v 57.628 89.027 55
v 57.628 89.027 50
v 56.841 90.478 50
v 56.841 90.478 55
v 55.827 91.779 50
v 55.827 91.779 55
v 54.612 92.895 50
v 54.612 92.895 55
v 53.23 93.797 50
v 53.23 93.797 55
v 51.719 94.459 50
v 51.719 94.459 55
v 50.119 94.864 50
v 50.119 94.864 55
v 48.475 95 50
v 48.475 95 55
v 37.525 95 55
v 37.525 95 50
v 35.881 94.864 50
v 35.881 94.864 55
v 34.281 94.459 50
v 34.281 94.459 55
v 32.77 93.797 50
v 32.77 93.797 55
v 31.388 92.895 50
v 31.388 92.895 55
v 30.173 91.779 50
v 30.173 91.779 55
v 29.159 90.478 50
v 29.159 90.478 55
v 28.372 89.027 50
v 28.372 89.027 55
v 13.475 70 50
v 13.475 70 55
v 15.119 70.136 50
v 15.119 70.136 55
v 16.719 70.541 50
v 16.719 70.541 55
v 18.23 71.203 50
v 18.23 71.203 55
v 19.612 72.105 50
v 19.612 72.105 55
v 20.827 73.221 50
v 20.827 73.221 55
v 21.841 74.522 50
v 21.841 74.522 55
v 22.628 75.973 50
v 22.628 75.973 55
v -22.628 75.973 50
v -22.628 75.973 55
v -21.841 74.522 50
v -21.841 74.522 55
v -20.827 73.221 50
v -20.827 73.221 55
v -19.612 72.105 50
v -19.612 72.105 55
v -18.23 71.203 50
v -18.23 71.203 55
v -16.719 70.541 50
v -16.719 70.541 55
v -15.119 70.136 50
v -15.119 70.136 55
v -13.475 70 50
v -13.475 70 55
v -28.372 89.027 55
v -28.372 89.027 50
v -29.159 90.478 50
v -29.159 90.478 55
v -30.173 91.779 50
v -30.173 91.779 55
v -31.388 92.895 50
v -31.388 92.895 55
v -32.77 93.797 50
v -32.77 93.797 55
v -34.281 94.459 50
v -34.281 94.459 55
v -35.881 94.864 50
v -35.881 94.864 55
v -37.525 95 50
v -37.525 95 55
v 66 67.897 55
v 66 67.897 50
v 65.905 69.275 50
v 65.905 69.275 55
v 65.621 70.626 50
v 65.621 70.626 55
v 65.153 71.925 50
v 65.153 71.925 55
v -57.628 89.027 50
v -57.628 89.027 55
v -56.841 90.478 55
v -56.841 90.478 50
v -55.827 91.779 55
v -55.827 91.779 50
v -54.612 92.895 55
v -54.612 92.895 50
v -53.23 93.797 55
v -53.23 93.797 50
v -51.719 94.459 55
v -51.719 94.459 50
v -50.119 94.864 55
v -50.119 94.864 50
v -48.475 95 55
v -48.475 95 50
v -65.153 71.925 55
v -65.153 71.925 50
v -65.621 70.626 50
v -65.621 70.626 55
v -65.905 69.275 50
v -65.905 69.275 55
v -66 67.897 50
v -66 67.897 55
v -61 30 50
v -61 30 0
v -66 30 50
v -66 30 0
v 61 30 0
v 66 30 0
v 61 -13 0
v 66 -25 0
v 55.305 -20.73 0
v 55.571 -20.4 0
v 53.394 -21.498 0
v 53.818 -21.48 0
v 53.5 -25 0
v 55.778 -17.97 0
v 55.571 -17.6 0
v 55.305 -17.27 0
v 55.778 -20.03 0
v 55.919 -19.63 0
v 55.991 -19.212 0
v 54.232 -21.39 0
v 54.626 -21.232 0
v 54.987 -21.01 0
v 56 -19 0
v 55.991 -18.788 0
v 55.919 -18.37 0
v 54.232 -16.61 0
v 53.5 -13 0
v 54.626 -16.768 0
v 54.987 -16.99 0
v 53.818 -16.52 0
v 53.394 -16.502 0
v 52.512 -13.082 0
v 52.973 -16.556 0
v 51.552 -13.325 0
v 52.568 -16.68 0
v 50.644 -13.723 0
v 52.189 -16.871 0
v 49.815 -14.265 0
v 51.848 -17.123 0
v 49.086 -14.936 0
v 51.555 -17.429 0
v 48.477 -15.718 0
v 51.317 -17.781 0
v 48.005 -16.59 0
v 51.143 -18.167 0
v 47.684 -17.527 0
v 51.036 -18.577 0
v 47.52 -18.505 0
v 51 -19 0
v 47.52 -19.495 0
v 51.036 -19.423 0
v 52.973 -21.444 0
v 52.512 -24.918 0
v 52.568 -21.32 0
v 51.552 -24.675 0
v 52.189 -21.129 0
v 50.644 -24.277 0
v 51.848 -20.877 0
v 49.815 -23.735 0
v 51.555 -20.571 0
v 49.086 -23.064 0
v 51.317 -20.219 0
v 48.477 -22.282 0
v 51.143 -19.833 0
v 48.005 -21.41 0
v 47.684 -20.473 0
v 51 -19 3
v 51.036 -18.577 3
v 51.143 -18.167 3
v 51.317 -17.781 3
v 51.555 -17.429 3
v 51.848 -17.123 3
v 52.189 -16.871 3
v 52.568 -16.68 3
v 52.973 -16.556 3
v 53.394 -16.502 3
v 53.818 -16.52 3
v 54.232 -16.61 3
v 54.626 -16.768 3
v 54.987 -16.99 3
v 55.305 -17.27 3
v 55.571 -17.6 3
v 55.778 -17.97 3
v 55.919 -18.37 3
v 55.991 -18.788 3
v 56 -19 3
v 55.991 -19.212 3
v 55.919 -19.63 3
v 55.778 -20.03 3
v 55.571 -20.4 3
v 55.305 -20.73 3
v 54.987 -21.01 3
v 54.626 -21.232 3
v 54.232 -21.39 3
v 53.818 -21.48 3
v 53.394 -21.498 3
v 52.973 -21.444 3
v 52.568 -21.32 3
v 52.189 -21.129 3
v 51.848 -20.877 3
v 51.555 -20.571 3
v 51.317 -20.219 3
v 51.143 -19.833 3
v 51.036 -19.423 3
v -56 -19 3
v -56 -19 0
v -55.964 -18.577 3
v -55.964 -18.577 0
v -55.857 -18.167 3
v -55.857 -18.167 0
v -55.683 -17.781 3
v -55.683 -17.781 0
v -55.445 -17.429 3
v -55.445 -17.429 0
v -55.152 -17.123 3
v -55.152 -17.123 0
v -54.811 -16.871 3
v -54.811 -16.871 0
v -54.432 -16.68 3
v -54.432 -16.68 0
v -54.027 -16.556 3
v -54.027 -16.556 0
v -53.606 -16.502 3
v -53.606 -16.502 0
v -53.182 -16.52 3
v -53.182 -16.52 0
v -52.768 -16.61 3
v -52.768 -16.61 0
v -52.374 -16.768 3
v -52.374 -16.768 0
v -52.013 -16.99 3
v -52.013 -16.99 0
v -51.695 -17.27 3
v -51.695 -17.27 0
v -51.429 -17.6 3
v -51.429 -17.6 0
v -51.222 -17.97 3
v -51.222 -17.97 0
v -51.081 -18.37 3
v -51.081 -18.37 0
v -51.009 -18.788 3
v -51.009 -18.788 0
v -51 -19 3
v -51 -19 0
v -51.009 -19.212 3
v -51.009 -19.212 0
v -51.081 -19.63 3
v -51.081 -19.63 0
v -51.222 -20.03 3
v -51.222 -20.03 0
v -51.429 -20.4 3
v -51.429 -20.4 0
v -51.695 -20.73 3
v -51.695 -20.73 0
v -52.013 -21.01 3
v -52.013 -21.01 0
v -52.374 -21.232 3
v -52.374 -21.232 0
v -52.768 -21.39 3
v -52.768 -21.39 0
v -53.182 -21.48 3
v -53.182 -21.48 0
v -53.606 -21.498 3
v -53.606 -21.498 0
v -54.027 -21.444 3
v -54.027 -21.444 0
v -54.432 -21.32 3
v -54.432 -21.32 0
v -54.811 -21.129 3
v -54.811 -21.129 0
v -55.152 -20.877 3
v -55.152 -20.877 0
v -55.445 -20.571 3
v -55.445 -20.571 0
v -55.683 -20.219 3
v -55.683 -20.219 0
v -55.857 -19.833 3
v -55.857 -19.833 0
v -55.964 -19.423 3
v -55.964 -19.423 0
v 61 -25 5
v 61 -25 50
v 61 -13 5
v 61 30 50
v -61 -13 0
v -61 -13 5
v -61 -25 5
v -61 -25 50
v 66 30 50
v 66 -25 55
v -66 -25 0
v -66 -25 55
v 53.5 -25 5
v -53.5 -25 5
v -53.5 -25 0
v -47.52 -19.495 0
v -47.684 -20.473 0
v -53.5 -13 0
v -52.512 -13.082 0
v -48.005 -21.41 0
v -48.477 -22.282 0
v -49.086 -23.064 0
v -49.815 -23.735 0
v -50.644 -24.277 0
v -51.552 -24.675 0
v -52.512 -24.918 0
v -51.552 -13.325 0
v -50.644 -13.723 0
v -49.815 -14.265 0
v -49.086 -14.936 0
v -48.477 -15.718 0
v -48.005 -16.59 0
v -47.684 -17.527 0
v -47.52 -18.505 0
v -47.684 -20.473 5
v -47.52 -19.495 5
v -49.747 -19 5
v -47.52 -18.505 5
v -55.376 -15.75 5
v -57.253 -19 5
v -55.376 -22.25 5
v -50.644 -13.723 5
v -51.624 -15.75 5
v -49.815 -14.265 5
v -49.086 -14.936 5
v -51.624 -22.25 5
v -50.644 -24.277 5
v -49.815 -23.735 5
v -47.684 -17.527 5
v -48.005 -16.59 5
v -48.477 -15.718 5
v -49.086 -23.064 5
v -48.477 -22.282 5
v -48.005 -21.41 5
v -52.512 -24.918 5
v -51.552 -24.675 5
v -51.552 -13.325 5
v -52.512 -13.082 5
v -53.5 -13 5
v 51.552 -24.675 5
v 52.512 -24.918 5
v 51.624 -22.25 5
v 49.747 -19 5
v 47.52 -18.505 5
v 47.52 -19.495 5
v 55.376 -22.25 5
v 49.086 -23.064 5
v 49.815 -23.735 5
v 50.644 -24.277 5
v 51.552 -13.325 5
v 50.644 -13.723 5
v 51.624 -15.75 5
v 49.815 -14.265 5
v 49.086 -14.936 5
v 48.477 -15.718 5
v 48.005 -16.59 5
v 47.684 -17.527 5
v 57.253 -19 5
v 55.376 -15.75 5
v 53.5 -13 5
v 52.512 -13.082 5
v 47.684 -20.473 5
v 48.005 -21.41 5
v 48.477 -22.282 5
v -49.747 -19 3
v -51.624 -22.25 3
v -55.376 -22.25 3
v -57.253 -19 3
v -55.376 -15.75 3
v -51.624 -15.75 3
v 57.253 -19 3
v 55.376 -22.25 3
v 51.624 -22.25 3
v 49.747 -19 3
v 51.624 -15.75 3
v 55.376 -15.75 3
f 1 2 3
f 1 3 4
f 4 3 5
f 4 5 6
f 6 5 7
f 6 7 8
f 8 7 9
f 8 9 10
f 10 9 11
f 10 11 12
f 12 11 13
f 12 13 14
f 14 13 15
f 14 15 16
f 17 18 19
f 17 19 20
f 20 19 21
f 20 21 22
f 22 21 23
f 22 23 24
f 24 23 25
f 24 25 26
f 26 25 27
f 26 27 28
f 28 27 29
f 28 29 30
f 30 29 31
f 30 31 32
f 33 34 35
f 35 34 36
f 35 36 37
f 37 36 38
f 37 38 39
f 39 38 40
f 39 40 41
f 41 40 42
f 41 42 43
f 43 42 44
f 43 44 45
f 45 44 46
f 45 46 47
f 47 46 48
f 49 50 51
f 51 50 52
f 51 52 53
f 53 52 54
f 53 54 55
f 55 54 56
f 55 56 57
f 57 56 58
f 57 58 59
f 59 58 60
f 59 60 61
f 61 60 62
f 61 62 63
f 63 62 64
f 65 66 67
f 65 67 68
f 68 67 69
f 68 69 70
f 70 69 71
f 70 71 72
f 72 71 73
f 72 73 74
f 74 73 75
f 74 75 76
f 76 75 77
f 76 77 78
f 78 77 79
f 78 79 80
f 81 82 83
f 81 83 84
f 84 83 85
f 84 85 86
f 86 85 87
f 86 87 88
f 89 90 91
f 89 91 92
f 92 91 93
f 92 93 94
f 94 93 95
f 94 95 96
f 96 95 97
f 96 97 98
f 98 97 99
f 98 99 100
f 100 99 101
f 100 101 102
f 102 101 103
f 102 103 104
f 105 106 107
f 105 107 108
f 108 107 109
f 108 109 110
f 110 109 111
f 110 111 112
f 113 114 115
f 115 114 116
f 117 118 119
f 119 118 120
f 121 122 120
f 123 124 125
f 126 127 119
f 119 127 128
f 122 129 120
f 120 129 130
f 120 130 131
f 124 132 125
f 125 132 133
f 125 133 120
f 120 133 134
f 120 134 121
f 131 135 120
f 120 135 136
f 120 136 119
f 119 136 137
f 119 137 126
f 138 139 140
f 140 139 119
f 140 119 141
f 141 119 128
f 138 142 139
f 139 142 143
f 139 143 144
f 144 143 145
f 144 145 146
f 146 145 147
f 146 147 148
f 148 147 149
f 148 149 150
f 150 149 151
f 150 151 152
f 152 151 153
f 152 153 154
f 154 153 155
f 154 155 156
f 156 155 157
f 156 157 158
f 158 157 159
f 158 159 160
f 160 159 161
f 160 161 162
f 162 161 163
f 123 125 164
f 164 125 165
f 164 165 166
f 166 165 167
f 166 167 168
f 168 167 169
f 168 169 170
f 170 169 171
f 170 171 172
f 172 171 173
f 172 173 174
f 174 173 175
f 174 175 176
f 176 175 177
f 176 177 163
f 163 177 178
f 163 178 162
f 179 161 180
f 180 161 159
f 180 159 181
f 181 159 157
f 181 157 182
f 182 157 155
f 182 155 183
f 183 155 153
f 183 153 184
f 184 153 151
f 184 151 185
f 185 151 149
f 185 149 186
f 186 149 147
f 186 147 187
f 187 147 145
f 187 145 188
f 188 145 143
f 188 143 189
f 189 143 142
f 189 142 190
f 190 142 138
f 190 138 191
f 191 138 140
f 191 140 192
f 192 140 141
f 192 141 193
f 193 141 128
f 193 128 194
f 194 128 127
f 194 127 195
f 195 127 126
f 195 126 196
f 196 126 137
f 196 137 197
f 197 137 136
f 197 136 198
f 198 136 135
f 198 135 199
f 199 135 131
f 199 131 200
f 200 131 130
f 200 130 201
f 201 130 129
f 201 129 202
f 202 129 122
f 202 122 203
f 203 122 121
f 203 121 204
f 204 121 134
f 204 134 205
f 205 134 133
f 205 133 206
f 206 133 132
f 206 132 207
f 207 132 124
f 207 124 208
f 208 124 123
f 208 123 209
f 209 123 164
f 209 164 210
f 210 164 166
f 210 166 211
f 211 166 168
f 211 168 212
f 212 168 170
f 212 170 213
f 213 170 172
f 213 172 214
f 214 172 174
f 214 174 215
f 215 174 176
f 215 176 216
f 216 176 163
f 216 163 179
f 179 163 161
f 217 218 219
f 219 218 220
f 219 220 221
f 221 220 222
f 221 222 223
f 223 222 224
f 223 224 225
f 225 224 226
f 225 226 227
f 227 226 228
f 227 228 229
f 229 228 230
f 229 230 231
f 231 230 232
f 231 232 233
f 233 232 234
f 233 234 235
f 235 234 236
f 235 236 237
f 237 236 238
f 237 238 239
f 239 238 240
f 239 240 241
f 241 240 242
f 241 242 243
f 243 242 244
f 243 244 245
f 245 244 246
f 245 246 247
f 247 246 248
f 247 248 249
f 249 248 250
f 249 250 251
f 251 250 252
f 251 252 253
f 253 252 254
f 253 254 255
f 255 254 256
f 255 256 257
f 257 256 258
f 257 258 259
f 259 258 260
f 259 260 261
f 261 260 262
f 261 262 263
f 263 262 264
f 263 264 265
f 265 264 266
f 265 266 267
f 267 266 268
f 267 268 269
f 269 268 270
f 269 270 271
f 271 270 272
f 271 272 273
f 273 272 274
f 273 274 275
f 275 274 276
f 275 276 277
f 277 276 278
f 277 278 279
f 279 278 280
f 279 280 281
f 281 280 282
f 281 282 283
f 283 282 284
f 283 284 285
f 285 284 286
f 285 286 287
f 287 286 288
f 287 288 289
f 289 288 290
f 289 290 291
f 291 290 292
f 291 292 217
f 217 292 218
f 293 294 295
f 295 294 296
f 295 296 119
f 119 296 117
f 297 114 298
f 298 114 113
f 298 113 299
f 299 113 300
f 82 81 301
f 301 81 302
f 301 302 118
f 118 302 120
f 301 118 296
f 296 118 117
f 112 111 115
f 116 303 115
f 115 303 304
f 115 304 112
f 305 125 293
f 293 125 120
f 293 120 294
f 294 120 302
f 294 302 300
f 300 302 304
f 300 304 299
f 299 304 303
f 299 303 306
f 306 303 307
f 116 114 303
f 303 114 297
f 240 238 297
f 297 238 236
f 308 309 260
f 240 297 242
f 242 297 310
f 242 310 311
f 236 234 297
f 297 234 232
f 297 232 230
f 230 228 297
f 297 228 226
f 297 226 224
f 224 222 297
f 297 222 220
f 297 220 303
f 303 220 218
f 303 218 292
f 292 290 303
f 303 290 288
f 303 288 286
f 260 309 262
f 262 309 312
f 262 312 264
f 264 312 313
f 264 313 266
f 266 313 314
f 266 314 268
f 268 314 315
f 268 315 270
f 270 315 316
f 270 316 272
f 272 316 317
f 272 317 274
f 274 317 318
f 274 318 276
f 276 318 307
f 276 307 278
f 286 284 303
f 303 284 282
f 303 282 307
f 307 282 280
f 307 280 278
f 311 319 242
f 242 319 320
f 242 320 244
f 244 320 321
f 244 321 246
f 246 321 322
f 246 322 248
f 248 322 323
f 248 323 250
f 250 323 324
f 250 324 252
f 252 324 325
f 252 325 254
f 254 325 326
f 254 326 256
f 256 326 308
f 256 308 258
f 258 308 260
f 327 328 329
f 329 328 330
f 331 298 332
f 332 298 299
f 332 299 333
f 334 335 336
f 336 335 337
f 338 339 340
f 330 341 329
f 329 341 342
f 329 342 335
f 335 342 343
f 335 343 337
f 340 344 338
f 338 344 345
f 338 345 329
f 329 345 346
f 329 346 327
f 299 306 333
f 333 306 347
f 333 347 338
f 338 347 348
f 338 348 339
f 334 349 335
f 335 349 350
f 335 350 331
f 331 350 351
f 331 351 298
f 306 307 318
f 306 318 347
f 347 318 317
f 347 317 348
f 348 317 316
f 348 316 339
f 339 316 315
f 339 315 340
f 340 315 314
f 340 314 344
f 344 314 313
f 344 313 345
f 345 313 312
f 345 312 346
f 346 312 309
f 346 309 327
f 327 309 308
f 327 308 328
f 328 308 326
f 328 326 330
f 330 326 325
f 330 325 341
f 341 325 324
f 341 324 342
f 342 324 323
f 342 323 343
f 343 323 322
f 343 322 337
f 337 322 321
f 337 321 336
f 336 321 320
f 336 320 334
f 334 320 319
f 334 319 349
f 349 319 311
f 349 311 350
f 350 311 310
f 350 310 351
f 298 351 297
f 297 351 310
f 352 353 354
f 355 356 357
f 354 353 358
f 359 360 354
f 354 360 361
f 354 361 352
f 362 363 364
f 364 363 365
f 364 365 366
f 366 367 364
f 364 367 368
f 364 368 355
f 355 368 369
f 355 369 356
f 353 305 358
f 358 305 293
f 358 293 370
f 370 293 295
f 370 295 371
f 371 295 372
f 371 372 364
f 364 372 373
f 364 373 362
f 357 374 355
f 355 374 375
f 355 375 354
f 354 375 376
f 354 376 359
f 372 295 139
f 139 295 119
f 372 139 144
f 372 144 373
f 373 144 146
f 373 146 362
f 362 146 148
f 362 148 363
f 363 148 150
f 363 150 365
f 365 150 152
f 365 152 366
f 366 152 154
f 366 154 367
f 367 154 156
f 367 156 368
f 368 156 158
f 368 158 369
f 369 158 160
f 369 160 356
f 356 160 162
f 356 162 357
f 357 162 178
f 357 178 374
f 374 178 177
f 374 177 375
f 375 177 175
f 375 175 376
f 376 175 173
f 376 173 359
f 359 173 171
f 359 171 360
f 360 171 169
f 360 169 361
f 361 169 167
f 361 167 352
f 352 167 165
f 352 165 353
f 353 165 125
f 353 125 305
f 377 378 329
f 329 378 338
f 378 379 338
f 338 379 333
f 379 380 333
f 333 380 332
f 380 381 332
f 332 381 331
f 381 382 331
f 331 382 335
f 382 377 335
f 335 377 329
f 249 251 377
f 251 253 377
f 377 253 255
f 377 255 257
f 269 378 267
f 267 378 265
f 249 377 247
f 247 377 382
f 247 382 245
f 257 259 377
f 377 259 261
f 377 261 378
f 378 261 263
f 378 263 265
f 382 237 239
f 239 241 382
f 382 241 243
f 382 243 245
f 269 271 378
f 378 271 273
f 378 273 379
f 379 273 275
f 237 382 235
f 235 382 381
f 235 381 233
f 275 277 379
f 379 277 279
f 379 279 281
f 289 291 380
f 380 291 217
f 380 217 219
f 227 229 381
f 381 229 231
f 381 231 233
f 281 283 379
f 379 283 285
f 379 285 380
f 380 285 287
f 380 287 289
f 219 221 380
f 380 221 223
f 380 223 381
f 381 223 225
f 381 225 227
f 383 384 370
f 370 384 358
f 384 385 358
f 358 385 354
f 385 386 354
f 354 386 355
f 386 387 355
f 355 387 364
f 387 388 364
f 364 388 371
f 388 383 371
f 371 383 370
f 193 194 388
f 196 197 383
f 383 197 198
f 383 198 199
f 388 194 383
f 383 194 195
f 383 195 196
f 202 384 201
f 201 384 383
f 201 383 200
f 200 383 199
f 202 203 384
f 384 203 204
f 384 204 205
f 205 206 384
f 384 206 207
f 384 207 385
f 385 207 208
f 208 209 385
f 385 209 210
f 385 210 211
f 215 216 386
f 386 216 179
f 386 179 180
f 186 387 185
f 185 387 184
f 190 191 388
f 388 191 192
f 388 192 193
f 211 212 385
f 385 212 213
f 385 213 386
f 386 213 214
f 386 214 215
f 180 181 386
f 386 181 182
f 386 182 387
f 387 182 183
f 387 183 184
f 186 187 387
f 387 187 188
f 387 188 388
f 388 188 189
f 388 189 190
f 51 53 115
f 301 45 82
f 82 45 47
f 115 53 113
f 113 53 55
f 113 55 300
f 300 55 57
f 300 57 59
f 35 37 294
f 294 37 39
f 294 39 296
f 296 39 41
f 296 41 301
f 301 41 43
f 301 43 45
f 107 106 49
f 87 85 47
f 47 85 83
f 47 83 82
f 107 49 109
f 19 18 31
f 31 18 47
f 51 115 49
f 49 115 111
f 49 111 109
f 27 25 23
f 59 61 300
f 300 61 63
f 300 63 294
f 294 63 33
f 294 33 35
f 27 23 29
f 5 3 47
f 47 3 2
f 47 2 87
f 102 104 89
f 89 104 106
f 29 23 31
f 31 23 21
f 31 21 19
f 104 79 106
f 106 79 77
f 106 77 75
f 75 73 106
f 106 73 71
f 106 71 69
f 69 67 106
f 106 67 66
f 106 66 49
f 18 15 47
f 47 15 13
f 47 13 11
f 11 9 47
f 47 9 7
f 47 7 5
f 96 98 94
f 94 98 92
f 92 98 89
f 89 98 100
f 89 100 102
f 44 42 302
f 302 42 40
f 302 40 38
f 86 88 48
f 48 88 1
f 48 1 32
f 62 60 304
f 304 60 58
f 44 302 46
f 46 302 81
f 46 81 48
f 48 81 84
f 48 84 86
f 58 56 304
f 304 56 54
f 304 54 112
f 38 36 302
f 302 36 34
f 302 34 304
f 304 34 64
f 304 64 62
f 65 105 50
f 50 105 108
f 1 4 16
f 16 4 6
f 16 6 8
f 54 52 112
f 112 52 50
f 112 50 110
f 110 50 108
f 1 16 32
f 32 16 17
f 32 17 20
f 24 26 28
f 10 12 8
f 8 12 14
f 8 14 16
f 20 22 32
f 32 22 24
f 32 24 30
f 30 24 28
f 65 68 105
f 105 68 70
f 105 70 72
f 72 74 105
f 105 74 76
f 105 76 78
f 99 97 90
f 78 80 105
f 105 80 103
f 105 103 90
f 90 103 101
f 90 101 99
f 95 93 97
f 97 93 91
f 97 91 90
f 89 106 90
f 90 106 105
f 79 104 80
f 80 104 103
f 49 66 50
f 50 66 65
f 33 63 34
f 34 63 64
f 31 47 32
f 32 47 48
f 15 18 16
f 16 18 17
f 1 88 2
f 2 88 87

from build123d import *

# Parameters (mm, degrees)
EXTRUDE_1_DEPTH     = 50
SKETCH_2_R          = 2.5
EXTRUDE_2_DEPTH     = 5
CUT_EXTRUDE_2_DEPTH = 2
SKETCH_7_W          = 132
SKETCH_7_H          = 55
EXTRUDE_3_DEPTH     = 5
SKETCH_8_W          = 122
SKETCH_8_H          = 5
CUT_EXTRUDE_3_DEPTH = 50
EXTRUDE_4_DEPTH     = 5
FILLET_1_R          = 10
FILLET_2_R          = 10
FILLET_3_R          = 10
FILLET_4_R          = 10
FILLET_5_R          = 10
FILLET_6_R          = 10
FILLET_7_R          = 10
FILLET_8_R          = 10


with BuildPart() as part:
    # 草图1 → 凸台-拉伸1 (new body)
    with BuildSketch(Plane.XY):
        Polygon((-66, 30), (66, 30), (66, -25), (61, -25), (61, 25), (-61, 25), (-61, -25), (-66, -25), align=None)
    extrude(amount=EXTRUDE_1_DEPTH)

    # 草图2 → 凸台-拉伸2 (add)
    # profile 1 of 2: a face of its own
    with BuildSketch(Plane.XY):
        with BuildLine():
            Line((-61, -13), (-53.5, -13))
            ThreePointArc((-53.5, -13), (-47.5, -19), (-53.5, -25))
            Line((-53.5, -25), (-61, -25))
            Line((-61, -25), (-61, -13))
        make_face()
        with Locations((-53.5, -19)):
            Circle(SKETCH_2_R, mode=Mode.SUBTRACT)
    # profile 2 of 2: a face of its own
    with BuildSketch(Plane.XY):
        with BuildLine():
            Line((61, -25), (53.5, -25))
            ThreePointArc((53.5, -25), (47.5, -19), (53.5, -13))
            Line((53.5, -13), (61, -13))
            Line((61, -13), (61, -25))
        make_face()
        with Locations((53.5, -19)):
            Circle(SKETCH_2_R, mode=Mode.SUBTRACT)
    extrude(amount=EXTRUDE_2_DEPTH)

    # 草图6 → 切除-拉伸2 (cut)
    with BuildSketch(Plane.XY.offset(5)):
        Polygon((-49.74722325, -19), (-51.623611625, -15.75), (-55.376388375, -15.75), (-57.25277675, -19), (-55.376388375, -22.25), (-51.623611625, -22.25), align=None)
        Polygon((57.25277675, -19), (55.376388375, -15.75), (51.623611625, -15.75), (49.74722325, -19), (51.623611625, -22.25), (55.376388375, -22.25), align=None)
    extrude(amount=-CUT_EXTRUDE_2_DEPTH, mode=Mode.SUBTRACT)

    # 草图7 → 凸台-拉伸3 (add)
    with BuildSketch(Plane.XY.offset(50)):
        with Locations((0, 2.5)):
            Rectangle(SKETCH_7_W, SKETCH_7_H)
    extrude(amount=EXTRUDE_3_DEPTH)

    # 草图8 → 切除-拉伸3 (cut)
    with BuildSketch(Plane(origin=(0, 0, 0), x_dir=(-1, 0, 0), z_dir=(0, 0, -1))):
        with Locations((0, 27.5)):
            Rectangle(SKETCH_8_W, SKETCH_8_H)
    extrude(amount=-CUT_EXTRUDE_3_DEPTH, mode=Mode.SUBTRACT)

    # 草图9 → 凸台-拉伸4 (add)
    with BuildSketch(Plane.XY.offset(55)):
        Polygon((-66, 30), (66, 30), (66, 70), (55, 95), (31, 95), (20, 70), (-20, 70), (-31, 95), (-55, 95), (-66, 70), align=None)
    extrude(amount=-EXTRUDE_4_DEPTH)

    # 圆角1
    fillet_1_edges = [part.edges().sort_by_distance(p)[0] for p in [
        (-66, 70, 52.5),
    ]]
    fillet(fillet_1_edges, radius=FILLET_1_R)

    # 圆角2
    fillet_2_edges = [part.edges().sort_by_distance(p)[0] for p in [
        (-55, 95, 52.5),
    ]]
    fillet(fillet_2_edges, radius=FILLET_2_R)

    # 圆角3
    fillet_3_edges = [part.edges().sort_by_distance(p)[0] for p in [
        (66, 70, 52.5),
    ]]
    fillet(fillet_3_edges, radius=FILLET_3_R)

    # 圆角4
    fillet_4_edges = [part.edges().sort_by_distance(p)[0] for p in [
        (-31, 95, 52.5),
    ]]
    fillet(fillet_4_edges, radius=FILLET_4_R)

    # 圆角5
    fillet_5_edges = [part.edges().sort_by_distance(p)[0] for p in [
        (-20, 70, 52.5),
    ]]
    fillet(fillet_5_edges, radius=FILLET_5_R)

    # 圆角6
    fillet_6_edges = [part.edges().sort_by_distance(p)[0] for p in [
        (20, 70, 52.5),
    ]]
    fillet(fillet_6_edges, radius=FILLET_6_R)

    # 圆角7
    fillet_7_edges = [part.edges().sort_by_distance(p)[0] for p in [
        (31, 95, 52.5),
    ]]
    fillet(fillet_7_edges, radius=FILLET_7_R)

    # 圆角8
    fillet_8_edges = [part.edges().sort_by_distance(p)[0] for p in [
        (55, 95, 52.5),
    ]]
    fillet(fillet_8_edges, radius=FILLET_8_R)


solid = part.part
